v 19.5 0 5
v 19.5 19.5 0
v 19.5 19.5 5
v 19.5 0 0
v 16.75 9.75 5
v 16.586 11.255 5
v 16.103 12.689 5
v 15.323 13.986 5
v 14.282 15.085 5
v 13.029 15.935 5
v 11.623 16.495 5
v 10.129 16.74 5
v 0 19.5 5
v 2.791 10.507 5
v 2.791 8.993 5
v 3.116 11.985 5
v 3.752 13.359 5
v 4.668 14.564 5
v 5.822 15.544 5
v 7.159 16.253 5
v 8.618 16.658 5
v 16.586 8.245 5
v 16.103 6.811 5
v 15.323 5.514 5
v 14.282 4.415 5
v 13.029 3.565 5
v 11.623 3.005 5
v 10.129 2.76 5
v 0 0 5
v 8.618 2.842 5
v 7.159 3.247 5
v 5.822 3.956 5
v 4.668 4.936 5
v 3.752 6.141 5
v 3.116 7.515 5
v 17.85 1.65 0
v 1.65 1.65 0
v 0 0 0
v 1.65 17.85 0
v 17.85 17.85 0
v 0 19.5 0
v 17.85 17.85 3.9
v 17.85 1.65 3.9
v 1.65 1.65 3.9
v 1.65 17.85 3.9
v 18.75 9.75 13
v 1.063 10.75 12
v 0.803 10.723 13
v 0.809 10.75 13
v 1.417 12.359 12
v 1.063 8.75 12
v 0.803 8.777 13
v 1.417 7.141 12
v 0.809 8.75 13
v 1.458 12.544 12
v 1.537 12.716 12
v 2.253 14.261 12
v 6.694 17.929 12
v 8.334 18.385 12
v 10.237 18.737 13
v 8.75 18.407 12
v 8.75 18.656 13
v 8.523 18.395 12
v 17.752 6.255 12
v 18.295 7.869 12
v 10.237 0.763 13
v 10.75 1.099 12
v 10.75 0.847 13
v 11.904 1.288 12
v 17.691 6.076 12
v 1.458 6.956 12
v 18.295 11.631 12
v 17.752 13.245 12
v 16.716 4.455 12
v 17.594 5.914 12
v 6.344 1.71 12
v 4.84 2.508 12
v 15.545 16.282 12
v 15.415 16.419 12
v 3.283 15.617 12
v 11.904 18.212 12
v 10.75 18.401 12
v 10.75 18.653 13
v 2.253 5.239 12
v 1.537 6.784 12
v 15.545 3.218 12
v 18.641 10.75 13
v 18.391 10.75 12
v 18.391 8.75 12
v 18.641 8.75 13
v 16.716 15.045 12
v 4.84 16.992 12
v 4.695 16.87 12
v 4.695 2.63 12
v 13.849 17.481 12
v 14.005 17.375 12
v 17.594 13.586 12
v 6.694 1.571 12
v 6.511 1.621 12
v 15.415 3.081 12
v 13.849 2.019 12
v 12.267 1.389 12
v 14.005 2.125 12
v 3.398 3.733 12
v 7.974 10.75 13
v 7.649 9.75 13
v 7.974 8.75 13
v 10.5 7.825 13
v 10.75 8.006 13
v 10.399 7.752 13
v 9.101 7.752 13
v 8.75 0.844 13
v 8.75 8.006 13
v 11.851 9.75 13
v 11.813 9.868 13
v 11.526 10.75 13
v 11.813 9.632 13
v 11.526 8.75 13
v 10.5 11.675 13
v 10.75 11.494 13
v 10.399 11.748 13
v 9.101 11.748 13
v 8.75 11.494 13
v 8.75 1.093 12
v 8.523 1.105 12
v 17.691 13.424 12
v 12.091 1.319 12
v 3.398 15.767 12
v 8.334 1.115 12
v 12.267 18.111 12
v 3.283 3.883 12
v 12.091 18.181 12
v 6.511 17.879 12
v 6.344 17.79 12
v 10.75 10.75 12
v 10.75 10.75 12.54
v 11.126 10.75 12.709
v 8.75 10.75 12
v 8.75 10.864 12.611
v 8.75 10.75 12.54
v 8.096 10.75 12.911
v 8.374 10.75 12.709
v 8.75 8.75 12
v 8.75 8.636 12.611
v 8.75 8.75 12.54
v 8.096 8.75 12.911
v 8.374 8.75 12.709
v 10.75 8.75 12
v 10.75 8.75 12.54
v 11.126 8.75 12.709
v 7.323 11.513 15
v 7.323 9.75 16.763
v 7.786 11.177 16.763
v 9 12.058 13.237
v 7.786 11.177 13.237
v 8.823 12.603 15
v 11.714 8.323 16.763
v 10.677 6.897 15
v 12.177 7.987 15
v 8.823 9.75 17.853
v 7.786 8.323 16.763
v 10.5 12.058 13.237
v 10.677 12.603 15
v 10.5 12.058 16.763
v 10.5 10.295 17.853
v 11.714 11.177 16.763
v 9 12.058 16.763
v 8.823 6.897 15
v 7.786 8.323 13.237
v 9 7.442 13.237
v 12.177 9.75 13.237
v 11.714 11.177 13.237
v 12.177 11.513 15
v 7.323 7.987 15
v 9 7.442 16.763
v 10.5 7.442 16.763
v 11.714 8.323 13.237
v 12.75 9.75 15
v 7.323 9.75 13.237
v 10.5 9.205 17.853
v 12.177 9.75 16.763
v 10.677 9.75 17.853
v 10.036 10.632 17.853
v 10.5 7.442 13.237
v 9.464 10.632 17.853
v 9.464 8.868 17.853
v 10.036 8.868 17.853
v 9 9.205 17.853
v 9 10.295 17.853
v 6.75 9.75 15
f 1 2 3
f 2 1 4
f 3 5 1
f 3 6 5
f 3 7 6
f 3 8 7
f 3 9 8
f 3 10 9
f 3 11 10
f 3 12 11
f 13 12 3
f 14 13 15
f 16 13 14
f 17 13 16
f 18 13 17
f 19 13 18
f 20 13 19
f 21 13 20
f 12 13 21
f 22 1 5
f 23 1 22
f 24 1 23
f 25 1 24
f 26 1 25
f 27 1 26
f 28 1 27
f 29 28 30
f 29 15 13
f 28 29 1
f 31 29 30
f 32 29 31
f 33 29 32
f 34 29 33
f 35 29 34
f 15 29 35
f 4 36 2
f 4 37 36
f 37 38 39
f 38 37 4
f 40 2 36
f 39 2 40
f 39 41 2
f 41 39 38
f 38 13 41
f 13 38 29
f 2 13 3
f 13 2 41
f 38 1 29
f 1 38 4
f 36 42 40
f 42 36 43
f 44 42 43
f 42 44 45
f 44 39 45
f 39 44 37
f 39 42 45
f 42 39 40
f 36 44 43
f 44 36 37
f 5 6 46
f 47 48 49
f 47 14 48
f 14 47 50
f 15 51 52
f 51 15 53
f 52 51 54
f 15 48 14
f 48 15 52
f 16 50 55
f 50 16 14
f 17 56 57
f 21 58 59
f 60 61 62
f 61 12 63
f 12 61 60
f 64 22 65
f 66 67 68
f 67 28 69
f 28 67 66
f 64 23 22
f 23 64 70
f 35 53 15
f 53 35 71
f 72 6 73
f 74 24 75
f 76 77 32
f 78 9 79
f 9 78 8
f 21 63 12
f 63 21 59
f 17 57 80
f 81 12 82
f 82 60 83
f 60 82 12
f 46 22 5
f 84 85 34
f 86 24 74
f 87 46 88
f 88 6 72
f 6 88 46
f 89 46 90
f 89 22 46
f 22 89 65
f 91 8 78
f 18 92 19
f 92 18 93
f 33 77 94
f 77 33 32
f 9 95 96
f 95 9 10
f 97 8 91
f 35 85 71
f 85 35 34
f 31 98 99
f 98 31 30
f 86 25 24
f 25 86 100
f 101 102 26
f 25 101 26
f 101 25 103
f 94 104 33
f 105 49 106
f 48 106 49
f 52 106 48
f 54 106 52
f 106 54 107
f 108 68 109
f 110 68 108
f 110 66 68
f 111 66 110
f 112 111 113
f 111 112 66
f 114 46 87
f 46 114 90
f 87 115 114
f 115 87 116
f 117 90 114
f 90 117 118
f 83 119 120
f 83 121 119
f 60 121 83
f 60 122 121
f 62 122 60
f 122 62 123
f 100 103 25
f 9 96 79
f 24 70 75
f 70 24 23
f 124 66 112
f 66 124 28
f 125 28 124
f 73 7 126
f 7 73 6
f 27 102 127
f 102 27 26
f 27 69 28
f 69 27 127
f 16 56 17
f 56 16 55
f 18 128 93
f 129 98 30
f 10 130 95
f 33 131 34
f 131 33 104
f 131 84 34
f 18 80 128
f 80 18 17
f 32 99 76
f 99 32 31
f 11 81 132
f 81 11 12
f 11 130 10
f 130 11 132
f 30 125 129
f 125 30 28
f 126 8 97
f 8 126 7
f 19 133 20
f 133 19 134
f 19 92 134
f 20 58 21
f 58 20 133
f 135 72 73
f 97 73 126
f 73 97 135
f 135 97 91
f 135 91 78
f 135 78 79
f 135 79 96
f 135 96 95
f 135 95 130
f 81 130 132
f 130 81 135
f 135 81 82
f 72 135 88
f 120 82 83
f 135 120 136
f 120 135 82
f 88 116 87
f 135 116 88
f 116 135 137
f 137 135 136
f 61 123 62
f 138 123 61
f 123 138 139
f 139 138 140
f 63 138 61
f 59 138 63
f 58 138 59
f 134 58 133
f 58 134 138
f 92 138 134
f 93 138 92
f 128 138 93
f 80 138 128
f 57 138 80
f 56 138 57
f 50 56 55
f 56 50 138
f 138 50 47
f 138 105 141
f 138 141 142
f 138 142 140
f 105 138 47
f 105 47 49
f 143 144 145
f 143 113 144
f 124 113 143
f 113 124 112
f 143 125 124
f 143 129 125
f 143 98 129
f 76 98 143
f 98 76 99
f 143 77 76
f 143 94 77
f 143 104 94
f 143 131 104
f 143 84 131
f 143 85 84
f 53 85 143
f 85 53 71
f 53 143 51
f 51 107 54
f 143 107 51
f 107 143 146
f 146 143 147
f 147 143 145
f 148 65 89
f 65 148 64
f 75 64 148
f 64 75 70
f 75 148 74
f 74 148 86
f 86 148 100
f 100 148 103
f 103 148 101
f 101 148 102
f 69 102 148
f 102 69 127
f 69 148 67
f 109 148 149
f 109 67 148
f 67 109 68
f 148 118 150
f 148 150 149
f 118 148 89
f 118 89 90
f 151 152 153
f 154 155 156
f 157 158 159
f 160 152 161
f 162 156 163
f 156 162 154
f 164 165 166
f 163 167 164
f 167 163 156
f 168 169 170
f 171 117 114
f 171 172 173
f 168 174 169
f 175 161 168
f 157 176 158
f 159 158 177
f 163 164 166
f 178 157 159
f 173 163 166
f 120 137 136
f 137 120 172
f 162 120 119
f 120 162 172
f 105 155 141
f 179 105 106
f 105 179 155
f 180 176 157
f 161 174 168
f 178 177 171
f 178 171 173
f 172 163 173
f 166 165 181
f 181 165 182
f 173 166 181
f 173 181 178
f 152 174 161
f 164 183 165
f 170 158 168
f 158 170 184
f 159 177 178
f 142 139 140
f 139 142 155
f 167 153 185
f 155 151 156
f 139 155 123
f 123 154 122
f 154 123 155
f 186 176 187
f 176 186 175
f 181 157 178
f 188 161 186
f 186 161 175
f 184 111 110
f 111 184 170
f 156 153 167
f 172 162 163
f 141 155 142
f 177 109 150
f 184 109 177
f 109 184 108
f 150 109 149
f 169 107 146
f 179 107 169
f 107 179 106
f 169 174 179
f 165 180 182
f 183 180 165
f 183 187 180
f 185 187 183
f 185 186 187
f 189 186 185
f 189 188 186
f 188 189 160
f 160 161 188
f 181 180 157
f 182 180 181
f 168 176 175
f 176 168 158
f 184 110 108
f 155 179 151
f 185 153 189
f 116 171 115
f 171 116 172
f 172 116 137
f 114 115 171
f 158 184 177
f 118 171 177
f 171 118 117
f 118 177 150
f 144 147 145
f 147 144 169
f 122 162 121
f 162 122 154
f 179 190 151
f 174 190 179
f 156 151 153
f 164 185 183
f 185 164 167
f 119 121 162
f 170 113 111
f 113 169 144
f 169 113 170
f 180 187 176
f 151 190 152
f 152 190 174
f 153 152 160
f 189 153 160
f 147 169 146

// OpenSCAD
// file: CommonModules.scad
//    $$$$$$\   $$$$$$\   $$$$$$\  $$\   $$\ $$$$$$\ $$$$$$$\  $$$$$$$$\ 
//    $$  __$$\ $$  __$$\ $$  __$$\ $$ |  $$ |\_$$  _|$$  __$$\ $$  _____|
//    $$ /  $$ |$$ /  \__|$$ /  $$ |$$ |  $$ |  $$ |  $$ |  $$ |$$ |      
//    $$$$$$$$ |$$ |      $$ |  $$ |$$ |  $$ |  $$ |  $$$$$$$  |$$$$$\    
//    $$  __$$ |$$ |      $$ |  $$ |$$ |  $$ |  $$ |  $$  __$$< $$  __|   
//    $$ |  $$ |$$ |  $$\ $$ $$\$$ |$$ |  $$ |  $$ |  $$ |  $$ |$$ |      
//    $$ |  $$ |\$$$$$$  |\$$$$$$ / \$$$$$$  |$$$$$$\ $$ |  $$ |$$$$$$$$\ 
//    \__|  \__| \______/  \___$$$\  \______/ \______|\__|  \__|\________|
//                            \___|                                      
//      
//       Print and play - OpenScad project - by Bekkalizer - GPLv3
// 
// This file is part of the Acquire stl project.
// Copyright (C) 2025 Bekkalizer
//
// Acquire stl project is free software: you can redistribute it and/or modify
// it under the terms of the GNU General Public License as published
// by the Free Software Foundation, either version 3 of the License,
// or (at your option) any later version.
//
// Acquire stl project is distributed in the hope that it will be useful,
// but WITHOUT ANY WARRANTY; without even the implied warranty of
// MERCHANTABILITY or FITNESS FOR A PARTICULAR PURPOSE. See the
// GNU General Public License for more details.
//
// You should have received a copy of the GNU General Public License
// along with this program. If not, see <https://www.gnu.org/licenses/>.

module cube_with_extruded_bottom( cube_size = [19.5, 19.5, 5] ) {
    //Main build script parameters:
    max_width = 19.2;
    top_lip = 2;
    top_height = 3;
    //Calculated hole size:
    inside_margins = 1;
    hole_width = max_width - 2 * (top_lip) + inside_margins;
    hole_height = top_height + inside_margins;
    
    hole_size = [hole_width, hole_width, hole_height]; // Hole dimensions (same height as cube)
    hole_offset = [(cube_size[0] - hole_size[0]) / 2, (cube_size[1] - hole_size[1]) / 2, -0.1]; // Centered on bottom
    difference() {
        // Main Cube
        cube(cube_size);
        
        // Hole Cube (subtracting from bottom)
        translate(hole_offset)
            cube(hole_size);
    }
}
// main file
//    $$$$$$\   $$$$$$\   $$$$$$\  $$\   $$\ $$$$$$\ $$$$$$$\  $$$$$$$$\ 
//    $$  __$$\ $$  __$$\ $$  __$$\ $$ |  $$ |\_$$  _|$$  __$$\ $$  _____|
//    $$ /  $$ |$$ /  \__|$$ /  $$ |$$ |  $$ |  $$ |  $$ |  $$ |$$ |      
//    $$$$$$$$ |$$ |      $$ |  $$ |$$ |  $$ |  $$ |  $$$$$$$  |$$$$$\    
//    $$  __$$ |$$ |      $$ |  $$ |$$ |  $$ |  $$ |  $$  __$$< $$  __|   
//    $$ |  $$ |$$ |  $$\ $$ $$\$$ |$$ |  $$ |  $$ |  $$ |  $$ |$$ |      
//    $$ |  $$ |\$$$$$$  |\$$$$$$ / \$$$$$$  |$$$$$$\ $$ |  $$ |$$$$$$$$\ 
//    \__|  \__| \______/  \___$$$\  \______/ \______|\__|  \__|\________|
//                            \___|                                      
//      
//       Print and play - OpenScad project - by Bekkalizer - GPLv3
// 
// This file is part of the Acquire stl project.
// Copyright (C) 2025 Bekkalizer
//
// Acquire stl project is free software: you can redistribute it and/or modify
// it under the terms of the GNU General Public License as published
// by the Free Software Foundation, either version 3 of the License,
// or (at your option) any later version.
//
// Acquire stl project is distributed in the hope that it will be useful,
// but WITHOUT ANY WARRANTY; without even the implied warranty of
// MERCHANTABILITY or FITNESS FOR A PARTICULAR PURPOSE. See the
// GNU General Public License for more details.
//
// You should have received a copy of the GNU General Public License
// along with this program. If not, see <https://www.gnu.org/licenses/>.

use <CommonModules.scad>

// ============== Parameters ==============
crown_body_bottom_radius = 7;
crown_body_top_radius = 9;
crown_body_height = 8;
crown_sphere_radius = 3;

bottom_width = 19.5;
bottom_height = 5;

cage_width = 2;
cage_height = 1;


union () {
    cube_with_extruded_bottom([bottom_width, bottom_width, bottom_height]);

    //crown_body
    translate([bottom_width/2,bottom_width/2,bottom_height]) {
        difference () {
            cylinder(crown_body_height, crown_body_bottom_radius, crown_body_top_radius);
            translate([cage_width/2, cage_width/2, crown_body_height-cage_height])
                cube([crown_body_top_radius,crown_body_top_radius,cage_height]);
            translate([-cage_width/2-crown_body_top_radius, cage_width/2, crown_body_height-cage_height])
                cube([crown_body_top_radius,crown_body_top_radius,cage_height]);
            translate([-cage_width/2-crown_body_top_radius, -cage_width/2-crown_body_top_radius, crown_body_height-cage_height])
                cube([crown_body_top_radius,crown_body_top_radius,cage_height]);
            translate([cage_width/2, -cage_width/2-crown_body_top_radius, crown_body_height-cage_height])
                cube([crown_body_top_radius,crown_body_top_radius,cage_height]);
        }
    }
    
    translate([bottom_width/2,bottom_width/2,bottom_height+crown_body_height+crown_sphere_radius-cage_height])
        sphere(crown_sphere_radius);
}
